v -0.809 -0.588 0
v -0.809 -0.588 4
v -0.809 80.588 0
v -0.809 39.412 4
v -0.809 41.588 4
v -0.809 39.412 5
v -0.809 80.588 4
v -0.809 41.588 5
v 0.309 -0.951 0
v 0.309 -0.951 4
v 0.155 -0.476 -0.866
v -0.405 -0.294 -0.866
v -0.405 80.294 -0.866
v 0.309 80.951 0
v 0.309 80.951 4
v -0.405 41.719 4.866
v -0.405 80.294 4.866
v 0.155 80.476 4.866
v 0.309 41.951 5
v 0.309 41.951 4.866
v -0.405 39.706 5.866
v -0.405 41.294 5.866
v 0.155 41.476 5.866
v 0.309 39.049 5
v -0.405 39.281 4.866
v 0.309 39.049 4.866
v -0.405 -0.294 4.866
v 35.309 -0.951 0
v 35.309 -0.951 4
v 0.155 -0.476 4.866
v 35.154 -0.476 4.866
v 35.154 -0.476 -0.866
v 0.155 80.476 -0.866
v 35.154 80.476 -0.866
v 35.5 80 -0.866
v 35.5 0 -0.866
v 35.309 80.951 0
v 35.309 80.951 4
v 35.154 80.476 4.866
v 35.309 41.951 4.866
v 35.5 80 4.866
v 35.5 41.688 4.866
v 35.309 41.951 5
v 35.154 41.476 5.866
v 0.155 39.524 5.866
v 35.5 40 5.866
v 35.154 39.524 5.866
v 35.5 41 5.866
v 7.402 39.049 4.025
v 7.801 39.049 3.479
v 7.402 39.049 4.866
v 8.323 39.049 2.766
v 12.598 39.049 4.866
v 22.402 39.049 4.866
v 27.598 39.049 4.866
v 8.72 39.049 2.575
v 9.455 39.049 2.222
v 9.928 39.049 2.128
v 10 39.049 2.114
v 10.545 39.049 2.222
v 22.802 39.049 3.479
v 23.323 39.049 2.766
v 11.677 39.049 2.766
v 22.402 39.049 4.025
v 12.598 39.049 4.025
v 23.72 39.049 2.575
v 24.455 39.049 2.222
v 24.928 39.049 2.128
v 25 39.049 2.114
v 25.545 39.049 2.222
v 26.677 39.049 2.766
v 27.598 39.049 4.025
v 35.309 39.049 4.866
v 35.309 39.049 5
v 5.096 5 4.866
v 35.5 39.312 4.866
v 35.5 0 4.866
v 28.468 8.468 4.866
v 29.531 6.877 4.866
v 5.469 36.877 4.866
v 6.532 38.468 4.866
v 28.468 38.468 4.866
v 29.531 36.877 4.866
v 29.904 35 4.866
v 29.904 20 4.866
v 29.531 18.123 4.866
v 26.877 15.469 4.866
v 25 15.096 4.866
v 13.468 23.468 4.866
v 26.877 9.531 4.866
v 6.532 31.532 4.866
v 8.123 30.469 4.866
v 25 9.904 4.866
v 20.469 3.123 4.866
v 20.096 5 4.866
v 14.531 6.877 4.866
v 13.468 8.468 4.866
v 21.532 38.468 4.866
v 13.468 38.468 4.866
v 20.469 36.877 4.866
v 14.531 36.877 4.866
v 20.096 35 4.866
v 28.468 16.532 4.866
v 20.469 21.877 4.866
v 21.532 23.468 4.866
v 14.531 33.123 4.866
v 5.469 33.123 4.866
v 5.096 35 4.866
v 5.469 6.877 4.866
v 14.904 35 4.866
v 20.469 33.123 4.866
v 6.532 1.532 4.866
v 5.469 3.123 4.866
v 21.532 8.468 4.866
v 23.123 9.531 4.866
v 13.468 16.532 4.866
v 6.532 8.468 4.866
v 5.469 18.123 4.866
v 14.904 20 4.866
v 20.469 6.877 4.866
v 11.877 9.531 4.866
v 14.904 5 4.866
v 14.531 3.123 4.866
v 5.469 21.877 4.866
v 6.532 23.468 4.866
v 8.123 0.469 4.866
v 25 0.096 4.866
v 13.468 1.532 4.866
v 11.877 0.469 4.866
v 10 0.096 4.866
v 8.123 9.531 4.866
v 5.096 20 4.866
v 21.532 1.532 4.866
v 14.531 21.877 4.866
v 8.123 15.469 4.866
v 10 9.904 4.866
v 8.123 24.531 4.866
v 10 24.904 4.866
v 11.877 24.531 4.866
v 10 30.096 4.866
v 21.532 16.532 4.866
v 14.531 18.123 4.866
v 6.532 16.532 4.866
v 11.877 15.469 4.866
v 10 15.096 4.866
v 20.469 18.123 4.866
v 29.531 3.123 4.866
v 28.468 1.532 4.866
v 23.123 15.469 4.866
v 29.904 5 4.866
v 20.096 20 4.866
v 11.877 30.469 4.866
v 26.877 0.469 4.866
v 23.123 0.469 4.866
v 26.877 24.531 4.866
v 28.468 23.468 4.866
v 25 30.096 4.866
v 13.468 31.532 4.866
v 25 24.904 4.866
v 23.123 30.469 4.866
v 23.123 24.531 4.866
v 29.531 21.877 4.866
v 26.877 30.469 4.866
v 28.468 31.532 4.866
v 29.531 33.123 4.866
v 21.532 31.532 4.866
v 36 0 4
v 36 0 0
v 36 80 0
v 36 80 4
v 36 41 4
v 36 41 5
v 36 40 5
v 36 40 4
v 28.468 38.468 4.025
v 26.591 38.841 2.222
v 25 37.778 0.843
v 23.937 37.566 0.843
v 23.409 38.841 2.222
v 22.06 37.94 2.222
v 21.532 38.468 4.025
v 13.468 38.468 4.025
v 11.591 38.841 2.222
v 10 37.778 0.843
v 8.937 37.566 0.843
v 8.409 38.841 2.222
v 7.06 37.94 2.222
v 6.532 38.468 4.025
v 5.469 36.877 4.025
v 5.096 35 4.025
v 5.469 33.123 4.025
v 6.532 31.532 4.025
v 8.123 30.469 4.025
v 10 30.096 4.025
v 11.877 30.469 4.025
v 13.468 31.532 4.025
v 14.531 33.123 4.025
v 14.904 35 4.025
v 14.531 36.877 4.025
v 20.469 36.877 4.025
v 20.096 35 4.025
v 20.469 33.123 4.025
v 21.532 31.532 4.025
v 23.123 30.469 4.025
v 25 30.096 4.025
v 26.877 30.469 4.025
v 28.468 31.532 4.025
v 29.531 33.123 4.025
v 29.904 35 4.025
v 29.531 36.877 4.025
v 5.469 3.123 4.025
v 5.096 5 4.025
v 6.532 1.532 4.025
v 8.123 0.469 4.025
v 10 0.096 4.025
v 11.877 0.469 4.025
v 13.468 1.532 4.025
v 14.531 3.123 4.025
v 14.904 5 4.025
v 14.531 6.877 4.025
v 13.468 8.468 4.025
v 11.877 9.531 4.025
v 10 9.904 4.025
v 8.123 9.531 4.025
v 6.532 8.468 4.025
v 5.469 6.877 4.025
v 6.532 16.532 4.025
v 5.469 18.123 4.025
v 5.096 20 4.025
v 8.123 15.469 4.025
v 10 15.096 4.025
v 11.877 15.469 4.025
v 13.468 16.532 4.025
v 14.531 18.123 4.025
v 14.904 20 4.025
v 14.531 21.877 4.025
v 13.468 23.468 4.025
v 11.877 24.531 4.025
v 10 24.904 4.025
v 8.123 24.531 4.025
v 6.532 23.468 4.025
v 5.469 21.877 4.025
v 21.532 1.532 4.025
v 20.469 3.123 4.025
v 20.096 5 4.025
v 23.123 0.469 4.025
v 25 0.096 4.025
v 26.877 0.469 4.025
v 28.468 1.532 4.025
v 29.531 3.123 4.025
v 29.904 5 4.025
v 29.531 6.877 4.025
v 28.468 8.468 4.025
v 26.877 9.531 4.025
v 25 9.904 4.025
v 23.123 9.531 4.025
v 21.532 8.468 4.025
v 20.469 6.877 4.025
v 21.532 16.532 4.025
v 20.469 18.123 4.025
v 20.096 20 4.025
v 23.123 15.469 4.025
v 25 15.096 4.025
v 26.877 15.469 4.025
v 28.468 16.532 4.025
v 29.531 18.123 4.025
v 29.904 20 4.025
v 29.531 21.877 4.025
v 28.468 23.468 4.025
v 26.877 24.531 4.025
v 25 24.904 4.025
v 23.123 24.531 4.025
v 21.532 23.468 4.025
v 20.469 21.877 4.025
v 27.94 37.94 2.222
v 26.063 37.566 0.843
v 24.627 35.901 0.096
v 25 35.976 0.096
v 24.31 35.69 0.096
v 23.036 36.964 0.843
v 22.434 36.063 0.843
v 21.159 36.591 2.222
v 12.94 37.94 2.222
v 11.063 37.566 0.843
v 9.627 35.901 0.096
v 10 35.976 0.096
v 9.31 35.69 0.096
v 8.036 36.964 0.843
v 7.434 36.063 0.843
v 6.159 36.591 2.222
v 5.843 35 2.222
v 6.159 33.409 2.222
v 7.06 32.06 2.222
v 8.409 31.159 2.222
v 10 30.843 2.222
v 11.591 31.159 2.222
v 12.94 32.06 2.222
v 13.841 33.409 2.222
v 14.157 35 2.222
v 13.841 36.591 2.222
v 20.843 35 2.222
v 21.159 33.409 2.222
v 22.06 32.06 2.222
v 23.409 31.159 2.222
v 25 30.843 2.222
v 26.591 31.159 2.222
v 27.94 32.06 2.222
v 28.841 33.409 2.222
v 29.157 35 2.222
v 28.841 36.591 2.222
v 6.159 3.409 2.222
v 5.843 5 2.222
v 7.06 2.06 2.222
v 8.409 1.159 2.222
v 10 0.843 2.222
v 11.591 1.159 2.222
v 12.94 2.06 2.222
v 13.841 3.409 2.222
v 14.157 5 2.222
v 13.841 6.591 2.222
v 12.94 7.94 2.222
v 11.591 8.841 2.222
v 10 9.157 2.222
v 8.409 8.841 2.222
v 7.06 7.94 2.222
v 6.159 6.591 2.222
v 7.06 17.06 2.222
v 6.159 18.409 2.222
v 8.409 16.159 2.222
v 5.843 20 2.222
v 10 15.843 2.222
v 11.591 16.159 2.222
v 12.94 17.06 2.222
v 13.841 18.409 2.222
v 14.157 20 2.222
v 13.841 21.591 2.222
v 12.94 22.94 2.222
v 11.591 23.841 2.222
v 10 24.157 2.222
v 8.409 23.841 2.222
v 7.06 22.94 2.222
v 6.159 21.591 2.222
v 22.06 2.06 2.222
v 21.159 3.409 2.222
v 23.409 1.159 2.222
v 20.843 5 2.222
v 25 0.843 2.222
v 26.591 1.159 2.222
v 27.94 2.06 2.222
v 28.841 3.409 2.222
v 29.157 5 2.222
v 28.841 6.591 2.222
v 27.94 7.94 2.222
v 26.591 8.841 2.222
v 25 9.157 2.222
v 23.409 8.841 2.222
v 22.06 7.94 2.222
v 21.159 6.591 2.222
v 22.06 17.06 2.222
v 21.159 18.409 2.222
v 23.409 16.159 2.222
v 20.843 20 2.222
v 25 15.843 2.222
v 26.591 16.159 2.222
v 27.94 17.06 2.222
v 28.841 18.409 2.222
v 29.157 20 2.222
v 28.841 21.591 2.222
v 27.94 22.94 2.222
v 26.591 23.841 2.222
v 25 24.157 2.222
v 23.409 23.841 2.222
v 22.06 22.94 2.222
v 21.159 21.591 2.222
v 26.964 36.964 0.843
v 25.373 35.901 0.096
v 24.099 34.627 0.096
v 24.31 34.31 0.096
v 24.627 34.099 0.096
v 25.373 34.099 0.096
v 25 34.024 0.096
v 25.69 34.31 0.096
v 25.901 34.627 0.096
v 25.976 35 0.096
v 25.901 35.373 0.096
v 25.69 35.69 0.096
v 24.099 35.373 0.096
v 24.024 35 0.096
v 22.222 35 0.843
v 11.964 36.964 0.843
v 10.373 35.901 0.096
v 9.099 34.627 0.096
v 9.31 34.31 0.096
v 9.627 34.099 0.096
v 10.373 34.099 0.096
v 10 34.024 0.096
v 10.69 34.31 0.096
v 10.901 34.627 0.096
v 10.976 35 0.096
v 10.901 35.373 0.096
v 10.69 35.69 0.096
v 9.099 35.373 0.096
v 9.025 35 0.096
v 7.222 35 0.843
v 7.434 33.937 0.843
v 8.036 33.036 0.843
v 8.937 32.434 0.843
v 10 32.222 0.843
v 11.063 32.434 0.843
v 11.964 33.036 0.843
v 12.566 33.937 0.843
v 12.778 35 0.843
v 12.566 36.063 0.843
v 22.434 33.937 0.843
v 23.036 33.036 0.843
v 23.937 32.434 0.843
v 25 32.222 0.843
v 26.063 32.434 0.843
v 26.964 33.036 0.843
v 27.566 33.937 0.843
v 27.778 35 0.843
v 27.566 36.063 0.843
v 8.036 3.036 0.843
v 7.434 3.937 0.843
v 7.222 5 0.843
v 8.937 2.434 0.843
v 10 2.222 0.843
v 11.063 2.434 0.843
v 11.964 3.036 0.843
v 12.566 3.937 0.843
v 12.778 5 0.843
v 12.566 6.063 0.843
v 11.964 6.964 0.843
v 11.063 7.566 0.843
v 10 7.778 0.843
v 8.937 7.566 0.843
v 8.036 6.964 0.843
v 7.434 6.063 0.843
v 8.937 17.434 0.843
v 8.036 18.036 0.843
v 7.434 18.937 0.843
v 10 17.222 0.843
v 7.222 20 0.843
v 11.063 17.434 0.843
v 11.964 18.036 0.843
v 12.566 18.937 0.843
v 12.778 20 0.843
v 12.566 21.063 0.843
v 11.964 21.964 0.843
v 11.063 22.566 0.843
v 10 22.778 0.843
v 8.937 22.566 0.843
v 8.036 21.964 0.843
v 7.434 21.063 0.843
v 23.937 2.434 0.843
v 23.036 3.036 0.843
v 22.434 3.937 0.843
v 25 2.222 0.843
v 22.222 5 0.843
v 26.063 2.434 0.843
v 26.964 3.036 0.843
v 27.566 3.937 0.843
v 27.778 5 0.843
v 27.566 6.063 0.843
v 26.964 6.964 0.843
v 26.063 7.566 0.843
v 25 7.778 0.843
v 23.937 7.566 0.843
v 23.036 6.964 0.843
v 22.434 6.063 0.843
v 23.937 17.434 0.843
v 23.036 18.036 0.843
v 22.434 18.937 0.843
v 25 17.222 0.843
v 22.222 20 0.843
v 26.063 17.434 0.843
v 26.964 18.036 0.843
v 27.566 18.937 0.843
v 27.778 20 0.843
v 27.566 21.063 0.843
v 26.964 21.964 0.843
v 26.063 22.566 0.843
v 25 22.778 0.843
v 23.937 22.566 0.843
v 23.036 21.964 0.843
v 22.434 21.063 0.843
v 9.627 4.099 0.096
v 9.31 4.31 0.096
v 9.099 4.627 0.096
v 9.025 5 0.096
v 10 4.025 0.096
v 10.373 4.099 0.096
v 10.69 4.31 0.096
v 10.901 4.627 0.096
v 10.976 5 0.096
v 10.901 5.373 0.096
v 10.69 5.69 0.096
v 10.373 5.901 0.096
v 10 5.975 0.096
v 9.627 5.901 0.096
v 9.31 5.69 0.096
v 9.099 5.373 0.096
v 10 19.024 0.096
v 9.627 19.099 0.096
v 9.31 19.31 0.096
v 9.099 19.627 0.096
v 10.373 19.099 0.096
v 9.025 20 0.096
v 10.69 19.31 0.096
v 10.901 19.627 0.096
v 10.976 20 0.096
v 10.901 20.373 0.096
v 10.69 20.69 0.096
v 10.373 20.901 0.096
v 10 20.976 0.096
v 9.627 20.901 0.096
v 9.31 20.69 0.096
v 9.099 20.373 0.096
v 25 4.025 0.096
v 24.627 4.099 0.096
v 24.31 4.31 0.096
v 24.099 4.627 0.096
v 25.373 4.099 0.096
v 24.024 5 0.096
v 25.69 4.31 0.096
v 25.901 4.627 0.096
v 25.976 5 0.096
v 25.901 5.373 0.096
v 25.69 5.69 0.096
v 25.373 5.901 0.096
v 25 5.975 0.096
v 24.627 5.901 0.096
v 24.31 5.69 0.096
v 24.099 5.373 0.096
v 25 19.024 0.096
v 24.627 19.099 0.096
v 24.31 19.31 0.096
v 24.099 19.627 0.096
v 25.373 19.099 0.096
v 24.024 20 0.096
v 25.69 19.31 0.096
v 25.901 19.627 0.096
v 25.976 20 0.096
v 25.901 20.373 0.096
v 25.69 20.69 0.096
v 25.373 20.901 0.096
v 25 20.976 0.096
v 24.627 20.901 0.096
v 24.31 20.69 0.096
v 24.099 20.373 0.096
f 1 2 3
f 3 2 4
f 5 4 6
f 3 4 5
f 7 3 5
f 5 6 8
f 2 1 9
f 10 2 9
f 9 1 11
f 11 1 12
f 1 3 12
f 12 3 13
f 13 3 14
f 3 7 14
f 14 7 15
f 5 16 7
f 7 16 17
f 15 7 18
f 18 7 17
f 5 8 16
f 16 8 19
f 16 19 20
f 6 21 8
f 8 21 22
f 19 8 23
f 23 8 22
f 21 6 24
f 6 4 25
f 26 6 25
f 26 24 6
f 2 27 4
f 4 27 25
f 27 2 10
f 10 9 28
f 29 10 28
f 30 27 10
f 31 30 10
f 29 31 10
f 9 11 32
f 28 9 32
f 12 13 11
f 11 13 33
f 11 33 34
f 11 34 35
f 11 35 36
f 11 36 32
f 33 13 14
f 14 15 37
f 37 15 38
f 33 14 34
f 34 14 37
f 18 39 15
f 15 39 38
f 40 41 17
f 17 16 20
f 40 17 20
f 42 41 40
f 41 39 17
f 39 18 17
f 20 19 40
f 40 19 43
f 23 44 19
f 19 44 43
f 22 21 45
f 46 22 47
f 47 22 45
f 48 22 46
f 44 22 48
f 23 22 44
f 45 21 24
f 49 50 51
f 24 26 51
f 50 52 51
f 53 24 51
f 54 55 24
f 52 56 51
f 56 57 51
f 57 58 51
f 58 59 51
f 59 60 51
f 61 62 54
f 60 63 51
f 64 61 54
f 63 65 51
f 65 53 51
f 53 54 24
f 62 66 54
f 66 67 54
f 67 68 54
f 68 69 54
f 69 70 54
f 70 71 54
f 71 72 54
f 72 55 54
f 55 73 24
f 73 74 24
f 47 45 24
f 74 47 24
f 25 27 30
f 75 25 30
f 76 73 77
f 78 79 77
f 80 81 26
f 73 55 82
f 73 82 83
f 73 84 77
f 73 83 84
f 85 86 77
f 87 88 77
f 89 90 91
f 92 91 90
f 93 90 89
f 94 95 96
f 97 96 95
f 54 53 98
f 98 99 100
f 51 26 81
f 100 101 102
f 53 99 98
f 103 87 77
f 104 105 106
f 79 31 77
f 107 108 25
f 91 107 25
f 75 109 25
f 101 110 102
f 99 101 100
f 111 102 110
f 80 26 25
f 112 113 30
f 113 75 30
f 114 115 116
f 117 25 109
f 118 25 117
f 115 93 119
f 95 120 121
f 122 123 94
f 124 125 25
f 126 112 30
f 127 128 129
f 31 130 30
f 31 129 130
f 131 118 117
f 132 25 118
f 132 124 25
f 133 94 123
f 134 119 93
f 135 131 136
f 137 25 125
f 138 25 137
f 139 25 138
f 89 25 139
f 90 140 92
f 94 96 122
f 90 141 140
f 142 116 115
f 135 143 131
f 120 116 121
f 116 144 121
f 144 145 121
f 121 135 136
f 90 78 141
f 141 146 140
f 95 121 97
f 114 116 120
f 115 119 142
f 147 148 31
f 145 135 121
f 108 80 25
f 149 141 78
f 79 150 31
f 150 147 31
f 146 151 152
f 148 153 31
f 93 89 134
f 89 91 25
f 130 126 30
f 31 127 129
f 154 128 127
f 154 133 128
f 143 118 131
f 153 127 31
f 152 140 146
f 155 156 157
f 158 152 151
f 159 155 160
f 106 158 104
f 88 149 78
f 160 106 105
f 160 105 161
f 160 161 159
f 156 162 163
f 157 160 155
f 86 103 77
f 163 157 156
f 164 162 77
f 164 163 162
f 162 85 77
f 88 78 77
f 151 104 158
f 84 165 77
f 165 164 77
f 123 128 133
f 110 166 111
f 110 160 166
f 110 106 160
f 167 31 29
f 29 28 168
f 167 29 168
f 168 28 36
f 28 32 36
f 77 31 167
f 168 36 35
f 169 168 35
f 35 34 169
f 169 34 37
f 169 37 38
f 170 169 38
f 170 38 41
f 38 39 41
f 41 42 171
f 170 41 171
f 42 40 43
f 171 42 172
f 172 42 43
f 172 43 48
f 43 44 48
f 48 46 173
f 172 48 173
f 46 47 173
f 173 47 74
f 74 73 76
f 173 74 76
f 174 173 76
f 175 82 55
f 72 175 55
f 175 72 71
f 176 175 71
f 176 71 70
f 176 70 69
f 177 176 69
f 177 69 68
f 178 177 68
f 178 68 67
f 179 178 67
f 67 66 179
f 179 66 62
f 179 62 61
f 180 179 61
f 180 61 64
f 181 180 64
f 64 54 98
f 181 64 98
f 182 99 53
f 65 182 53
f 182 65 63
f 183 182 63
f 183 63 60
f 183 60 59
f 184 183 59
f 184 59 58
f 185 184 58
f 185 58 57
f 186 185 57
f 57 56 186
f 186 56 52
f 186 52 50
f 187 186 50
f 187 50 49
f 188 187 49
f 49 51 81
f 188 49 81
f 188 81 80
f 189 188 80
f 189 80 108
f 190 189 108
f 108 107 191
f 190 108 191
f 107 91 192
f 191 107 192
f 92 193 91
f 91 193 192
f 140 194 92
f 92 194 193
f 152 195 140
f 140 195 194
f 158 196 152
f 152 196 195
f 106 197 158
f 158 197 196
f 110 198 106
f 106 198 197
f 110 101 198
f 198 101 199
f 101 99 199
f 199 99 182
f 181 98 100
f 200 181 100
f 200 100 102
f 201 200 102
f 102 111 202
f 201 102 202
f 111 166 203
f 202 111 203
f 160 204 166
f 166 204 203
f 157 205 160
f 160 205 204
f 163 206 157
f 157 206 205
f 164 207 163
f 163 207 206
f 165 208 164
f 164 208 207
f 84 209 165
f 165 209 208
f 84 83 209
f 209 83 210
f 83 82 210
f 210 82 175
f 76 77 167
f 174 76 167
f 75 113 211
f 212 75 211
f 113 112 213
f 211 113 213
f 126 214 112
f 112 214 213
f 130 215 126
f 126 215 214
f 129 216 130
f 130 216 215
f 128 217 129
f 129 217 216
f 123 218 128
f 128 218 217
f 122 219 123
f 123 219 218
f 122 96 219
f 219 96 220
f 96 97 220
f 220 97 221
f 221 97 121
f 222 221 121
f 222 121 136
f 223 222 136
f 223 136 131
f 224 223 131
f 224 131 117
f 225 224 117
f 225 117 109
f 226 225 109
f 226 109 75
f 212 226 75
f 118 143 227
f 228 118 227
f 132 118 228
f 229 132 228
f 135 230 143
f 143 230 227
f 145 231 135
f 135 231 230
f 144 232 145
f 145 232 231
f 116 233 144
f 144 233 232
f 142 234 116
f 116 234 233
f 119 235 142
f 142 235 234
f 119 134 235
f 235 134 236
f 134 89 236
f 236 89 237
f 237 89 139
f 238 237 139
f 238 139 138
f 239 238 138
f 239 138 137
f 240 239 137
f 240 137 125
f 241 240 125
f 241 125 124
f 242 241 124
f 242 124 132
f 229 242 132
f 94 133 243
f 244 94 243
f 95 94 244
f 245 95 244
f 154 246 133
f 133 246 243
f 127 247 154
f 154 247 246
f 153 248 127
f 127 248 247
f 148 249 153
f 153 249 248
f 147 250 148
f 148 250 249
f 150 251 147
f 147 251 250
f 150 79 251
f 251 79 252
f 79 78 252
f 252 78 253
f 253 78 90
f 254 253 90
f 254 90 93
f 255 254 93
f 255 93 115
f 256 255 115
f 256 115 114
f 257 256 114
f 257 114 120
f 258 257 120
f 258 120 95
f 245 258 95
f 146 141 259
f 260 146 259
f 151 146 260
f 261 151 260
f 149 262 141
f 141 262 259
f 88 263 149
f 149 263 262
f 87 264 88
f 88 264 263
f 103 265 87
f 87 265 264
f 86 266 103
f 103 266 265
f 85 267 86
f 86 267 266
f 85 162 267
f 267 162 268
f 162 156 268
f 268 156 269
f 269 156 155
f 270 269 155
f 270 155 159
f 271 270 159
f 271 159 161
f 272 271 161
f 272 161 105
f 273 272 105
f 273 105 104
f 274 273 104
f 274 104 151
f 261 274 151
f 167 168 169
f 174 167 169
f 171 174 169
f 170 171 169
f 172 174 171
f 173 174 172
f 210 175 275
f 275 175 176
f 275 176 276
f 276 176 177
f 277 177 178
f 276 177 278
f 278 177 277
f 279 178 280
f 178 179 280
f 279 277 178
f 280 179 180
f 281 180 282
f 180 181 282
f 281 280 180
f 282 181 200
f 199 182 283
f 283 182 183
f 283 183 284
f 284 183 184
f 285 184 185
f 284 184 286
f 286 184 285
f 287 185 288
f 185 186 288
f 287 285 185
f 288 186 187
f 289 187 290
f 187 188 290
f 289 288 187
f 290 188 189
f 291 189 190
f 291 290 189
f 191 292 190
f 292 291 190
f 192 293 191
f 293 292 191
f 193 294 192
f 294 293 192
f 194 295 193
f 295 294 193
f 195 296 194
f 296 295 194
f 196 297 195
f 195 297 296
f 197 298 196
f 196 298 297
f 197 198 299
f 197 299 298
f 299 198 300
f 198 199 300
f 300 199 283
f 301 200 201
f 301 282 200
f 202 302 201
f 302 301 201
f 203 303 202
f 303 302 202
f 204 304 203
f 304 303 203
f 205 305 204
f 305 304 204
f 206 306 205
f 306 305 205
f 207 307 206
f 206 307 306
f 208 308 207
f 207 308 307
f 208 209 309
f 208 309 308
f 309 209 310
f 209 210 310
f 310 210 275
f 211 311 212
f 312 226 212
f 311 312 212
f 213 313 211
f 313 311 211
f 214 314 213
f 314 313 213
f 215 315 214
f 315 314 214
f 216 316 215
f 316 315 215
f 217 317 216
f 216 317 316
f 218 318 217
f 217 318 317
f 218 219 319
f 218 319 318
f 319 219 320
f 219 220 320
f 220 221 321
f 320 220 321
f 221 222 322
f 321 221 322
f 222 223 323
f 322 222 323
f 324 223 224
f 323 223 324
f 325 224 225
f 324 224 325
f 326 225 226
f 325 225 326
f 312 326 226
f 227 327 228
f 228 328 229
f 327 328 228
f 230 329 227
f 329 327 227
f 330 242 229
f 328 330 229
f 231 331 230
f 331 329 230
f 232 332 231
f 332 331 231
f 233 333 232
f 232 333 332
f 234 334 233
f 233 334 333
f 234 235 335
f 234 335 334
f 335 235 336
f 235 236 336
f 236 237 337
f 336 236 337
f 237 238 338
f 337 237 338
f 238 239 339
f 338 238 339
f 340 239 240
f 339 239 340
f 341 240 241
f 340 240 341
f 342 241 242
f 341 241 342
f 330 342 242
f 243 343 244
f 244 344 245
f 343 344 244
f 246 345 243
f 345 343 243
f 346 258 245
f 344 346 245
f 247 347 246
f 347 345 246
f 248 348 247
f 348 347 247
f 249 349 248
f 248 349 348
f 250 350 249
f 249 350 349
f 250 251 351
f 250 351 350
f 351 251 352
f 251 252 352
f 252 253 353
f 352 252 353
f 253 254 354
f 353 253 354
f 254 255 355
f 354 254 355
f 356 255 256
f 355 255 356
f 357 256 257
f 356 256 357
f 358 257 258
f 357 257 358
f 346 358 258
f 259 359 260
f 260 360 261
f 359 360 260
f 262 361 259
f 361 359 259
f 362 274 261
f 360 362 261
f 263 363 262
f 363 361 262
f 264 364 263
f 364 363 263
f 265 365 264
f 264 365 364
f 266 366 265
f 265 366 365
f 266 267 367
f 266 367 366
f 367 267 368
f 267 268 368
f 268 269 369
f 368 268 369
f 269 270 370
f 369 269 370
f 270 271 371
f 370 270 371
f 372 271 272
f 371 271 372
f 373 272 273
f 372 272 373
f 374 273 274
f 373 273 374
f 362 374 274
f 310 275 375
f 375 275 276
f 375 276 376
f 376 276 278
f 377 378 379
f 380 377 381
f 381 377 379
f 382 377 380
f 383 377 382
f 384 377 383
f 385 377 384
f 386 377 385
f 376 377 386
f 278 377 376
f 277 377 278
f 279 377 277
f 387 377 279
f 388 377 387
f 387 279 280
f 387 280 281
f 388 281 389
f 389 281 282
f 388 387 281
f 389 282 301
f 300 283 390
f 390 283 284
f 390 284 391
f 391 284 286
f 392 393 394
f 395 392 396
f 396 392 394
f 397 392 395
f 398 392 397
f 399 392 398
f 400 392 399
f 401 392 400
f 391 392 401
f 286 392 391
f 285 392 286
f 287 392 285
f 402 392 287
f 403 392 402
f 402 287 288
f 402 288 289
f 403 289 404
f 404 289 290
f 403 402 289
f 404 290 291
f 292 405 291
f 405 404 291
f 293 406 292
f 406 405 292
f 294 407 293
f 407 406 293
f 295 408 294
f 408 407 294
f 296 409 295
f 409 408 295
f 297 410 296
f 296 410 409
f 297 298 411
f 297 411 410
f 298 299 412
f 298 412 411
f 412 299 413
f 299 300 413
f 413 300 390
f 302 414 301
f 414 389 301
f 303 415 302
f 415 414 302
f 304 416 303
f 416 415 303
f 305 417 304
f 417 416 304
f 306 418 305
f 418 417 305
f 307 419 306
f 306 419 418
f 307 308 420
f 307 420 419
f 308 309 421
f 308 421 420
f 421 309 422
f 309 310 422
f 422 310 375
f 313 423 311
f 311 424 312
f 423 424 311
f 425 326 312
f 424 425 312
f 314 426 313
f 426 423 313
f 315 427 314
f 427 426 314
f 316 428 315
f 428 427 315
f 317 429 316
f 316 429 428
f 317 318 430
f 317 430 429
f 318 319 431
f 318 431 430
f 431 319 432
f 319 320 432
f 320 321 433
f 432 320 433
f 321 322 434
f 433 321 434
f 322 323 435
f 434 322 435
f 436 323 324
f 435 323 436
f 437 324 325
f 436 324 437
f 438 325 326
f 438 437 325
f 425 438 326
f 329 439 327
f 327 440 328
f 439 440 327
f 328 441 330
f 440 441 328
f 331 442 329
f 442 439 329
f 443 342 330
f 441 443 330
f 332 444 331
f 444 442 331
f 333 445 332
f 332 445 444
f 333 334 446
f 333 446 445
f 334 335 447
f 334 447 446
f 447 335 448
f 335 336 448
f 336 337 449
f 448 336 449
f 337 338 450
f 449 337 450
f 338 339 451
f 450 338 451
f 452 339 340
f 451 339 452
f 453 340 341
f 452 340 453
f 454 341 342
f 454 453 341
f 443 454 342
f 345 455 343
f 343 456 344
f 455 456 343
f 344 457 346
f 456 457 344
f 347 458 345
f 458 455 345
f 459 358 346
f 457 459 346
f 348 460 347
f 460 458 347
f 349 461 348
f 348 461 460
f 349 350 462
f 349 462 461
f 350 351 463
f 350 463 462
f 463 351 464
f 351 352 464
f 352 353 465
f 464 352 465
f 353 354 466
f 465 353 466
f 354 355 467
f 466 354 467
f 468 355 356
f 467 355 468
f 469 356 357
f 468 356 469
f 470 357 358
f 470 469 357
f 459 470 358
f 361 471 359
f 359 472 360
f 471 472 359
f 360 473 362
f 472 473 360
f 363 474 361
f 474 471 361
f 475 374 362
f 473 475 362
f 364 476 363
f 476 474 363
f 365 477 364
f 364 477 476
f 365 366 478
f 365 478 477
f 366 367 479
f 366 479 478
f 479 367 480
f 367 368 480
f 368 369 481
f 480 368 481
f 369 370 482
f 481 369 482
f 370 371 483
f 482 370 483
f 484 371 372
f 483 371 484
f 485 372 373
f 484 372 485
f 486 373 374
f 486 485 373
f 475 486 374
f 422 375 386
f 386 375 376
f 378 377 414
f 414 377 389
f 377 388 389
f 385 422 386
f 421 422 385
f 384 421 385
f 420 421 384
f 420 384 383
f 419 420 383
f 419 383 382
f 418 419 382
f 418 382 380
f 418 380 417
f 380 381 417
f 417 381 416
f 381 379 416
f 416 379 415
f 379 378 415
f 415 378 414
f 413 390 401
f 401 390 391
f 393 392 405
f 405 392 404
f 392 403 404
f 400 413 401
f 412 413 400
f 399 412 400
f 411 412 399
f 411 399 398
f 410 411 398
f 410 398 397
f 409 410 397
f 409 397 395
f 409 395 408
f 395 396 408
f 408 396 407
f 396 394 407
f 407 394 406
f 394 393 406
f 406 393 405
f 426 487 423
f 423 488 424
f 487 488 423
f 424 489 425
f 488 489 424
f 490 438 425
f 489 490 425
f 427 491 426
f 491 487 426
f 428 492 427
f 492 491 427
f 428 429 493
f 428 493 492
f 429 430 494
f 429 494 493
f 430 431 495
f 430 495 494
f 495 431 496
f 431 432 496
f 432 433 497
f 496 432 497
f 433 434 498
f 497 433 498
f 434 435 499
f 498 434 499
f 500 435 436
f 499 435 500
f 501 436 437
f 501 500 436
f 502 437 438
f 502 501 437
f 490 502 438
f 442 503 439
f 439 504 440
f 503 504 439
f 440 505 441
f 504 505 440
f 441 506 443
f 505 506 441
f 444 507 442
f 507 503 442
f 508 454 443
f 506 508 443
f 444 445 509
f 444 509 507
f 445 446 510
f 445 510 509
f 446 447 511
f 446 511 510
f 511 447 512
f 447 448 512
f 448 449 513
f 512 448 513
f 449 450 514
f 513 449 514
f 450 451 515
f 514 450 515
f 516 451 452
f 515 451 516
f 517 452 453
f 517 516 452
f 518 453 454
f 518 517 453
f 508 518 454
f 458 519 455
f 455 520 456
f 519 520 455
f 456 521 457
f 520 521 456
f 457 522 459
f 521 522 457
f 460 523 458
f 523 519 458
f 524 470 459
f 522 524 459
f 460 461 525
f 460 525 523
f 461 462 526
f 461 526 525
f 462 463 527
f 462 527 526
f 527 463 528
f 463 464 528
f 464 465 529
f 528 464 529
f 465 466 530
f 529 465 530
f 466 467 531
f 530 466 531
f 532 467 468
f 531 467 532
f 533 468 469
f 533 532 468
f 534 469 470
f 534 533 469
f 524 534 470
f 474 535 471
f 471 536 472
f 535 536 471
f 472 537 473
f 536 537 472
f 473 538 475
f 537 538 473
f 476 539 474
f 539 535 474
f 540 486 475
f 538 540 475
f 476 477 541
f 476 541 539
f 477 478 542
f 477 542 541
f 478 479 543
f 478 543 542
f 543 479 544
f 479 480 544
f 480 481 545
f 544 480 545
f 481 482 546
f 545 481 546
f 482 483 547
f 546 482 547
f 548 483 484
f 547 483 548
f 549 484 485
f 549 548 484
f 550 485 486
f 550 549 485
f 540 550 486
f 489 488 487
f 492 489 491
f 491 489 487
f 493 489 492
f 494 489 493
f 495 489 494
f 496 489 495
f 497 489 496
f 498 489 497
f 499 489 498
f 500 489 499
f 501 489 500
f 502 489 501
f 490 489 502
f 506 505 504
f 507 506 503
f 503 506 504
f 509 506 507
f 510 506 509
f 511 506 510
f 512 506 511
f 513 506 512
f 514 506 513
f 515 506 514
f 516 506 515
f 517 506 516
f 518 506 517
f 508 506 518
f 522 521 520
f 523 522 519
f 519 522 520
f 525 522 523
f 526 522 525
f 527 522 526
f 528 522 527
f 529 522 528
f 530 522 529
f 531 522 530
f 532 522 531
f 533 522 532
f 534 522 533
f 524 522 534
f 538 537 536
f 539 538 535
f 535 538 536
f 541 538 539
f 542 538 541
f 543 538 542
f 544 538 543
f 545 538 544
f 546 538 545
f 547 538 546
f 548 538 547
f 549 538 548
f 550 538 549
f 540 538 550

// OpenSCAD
// Loguncov Maxim 13.12.13


//$fn=128;


translate([0,40,0])
minkowski()
{cube([35,1,5]);
sphere(1);
}

difference() {

//основа
minkowski()
{cube([35,80,4]);
sphere(1);
}

//отверстия
translate([10,5,5])sphere(5);
translate([25,5,5])sphere(5);
translate([10,20,5])sphere(5);
translate([25,20,5])sphere(5);
translate([10,35,5])sphere(5);
translate([25,35,5])sphere(5);





}
